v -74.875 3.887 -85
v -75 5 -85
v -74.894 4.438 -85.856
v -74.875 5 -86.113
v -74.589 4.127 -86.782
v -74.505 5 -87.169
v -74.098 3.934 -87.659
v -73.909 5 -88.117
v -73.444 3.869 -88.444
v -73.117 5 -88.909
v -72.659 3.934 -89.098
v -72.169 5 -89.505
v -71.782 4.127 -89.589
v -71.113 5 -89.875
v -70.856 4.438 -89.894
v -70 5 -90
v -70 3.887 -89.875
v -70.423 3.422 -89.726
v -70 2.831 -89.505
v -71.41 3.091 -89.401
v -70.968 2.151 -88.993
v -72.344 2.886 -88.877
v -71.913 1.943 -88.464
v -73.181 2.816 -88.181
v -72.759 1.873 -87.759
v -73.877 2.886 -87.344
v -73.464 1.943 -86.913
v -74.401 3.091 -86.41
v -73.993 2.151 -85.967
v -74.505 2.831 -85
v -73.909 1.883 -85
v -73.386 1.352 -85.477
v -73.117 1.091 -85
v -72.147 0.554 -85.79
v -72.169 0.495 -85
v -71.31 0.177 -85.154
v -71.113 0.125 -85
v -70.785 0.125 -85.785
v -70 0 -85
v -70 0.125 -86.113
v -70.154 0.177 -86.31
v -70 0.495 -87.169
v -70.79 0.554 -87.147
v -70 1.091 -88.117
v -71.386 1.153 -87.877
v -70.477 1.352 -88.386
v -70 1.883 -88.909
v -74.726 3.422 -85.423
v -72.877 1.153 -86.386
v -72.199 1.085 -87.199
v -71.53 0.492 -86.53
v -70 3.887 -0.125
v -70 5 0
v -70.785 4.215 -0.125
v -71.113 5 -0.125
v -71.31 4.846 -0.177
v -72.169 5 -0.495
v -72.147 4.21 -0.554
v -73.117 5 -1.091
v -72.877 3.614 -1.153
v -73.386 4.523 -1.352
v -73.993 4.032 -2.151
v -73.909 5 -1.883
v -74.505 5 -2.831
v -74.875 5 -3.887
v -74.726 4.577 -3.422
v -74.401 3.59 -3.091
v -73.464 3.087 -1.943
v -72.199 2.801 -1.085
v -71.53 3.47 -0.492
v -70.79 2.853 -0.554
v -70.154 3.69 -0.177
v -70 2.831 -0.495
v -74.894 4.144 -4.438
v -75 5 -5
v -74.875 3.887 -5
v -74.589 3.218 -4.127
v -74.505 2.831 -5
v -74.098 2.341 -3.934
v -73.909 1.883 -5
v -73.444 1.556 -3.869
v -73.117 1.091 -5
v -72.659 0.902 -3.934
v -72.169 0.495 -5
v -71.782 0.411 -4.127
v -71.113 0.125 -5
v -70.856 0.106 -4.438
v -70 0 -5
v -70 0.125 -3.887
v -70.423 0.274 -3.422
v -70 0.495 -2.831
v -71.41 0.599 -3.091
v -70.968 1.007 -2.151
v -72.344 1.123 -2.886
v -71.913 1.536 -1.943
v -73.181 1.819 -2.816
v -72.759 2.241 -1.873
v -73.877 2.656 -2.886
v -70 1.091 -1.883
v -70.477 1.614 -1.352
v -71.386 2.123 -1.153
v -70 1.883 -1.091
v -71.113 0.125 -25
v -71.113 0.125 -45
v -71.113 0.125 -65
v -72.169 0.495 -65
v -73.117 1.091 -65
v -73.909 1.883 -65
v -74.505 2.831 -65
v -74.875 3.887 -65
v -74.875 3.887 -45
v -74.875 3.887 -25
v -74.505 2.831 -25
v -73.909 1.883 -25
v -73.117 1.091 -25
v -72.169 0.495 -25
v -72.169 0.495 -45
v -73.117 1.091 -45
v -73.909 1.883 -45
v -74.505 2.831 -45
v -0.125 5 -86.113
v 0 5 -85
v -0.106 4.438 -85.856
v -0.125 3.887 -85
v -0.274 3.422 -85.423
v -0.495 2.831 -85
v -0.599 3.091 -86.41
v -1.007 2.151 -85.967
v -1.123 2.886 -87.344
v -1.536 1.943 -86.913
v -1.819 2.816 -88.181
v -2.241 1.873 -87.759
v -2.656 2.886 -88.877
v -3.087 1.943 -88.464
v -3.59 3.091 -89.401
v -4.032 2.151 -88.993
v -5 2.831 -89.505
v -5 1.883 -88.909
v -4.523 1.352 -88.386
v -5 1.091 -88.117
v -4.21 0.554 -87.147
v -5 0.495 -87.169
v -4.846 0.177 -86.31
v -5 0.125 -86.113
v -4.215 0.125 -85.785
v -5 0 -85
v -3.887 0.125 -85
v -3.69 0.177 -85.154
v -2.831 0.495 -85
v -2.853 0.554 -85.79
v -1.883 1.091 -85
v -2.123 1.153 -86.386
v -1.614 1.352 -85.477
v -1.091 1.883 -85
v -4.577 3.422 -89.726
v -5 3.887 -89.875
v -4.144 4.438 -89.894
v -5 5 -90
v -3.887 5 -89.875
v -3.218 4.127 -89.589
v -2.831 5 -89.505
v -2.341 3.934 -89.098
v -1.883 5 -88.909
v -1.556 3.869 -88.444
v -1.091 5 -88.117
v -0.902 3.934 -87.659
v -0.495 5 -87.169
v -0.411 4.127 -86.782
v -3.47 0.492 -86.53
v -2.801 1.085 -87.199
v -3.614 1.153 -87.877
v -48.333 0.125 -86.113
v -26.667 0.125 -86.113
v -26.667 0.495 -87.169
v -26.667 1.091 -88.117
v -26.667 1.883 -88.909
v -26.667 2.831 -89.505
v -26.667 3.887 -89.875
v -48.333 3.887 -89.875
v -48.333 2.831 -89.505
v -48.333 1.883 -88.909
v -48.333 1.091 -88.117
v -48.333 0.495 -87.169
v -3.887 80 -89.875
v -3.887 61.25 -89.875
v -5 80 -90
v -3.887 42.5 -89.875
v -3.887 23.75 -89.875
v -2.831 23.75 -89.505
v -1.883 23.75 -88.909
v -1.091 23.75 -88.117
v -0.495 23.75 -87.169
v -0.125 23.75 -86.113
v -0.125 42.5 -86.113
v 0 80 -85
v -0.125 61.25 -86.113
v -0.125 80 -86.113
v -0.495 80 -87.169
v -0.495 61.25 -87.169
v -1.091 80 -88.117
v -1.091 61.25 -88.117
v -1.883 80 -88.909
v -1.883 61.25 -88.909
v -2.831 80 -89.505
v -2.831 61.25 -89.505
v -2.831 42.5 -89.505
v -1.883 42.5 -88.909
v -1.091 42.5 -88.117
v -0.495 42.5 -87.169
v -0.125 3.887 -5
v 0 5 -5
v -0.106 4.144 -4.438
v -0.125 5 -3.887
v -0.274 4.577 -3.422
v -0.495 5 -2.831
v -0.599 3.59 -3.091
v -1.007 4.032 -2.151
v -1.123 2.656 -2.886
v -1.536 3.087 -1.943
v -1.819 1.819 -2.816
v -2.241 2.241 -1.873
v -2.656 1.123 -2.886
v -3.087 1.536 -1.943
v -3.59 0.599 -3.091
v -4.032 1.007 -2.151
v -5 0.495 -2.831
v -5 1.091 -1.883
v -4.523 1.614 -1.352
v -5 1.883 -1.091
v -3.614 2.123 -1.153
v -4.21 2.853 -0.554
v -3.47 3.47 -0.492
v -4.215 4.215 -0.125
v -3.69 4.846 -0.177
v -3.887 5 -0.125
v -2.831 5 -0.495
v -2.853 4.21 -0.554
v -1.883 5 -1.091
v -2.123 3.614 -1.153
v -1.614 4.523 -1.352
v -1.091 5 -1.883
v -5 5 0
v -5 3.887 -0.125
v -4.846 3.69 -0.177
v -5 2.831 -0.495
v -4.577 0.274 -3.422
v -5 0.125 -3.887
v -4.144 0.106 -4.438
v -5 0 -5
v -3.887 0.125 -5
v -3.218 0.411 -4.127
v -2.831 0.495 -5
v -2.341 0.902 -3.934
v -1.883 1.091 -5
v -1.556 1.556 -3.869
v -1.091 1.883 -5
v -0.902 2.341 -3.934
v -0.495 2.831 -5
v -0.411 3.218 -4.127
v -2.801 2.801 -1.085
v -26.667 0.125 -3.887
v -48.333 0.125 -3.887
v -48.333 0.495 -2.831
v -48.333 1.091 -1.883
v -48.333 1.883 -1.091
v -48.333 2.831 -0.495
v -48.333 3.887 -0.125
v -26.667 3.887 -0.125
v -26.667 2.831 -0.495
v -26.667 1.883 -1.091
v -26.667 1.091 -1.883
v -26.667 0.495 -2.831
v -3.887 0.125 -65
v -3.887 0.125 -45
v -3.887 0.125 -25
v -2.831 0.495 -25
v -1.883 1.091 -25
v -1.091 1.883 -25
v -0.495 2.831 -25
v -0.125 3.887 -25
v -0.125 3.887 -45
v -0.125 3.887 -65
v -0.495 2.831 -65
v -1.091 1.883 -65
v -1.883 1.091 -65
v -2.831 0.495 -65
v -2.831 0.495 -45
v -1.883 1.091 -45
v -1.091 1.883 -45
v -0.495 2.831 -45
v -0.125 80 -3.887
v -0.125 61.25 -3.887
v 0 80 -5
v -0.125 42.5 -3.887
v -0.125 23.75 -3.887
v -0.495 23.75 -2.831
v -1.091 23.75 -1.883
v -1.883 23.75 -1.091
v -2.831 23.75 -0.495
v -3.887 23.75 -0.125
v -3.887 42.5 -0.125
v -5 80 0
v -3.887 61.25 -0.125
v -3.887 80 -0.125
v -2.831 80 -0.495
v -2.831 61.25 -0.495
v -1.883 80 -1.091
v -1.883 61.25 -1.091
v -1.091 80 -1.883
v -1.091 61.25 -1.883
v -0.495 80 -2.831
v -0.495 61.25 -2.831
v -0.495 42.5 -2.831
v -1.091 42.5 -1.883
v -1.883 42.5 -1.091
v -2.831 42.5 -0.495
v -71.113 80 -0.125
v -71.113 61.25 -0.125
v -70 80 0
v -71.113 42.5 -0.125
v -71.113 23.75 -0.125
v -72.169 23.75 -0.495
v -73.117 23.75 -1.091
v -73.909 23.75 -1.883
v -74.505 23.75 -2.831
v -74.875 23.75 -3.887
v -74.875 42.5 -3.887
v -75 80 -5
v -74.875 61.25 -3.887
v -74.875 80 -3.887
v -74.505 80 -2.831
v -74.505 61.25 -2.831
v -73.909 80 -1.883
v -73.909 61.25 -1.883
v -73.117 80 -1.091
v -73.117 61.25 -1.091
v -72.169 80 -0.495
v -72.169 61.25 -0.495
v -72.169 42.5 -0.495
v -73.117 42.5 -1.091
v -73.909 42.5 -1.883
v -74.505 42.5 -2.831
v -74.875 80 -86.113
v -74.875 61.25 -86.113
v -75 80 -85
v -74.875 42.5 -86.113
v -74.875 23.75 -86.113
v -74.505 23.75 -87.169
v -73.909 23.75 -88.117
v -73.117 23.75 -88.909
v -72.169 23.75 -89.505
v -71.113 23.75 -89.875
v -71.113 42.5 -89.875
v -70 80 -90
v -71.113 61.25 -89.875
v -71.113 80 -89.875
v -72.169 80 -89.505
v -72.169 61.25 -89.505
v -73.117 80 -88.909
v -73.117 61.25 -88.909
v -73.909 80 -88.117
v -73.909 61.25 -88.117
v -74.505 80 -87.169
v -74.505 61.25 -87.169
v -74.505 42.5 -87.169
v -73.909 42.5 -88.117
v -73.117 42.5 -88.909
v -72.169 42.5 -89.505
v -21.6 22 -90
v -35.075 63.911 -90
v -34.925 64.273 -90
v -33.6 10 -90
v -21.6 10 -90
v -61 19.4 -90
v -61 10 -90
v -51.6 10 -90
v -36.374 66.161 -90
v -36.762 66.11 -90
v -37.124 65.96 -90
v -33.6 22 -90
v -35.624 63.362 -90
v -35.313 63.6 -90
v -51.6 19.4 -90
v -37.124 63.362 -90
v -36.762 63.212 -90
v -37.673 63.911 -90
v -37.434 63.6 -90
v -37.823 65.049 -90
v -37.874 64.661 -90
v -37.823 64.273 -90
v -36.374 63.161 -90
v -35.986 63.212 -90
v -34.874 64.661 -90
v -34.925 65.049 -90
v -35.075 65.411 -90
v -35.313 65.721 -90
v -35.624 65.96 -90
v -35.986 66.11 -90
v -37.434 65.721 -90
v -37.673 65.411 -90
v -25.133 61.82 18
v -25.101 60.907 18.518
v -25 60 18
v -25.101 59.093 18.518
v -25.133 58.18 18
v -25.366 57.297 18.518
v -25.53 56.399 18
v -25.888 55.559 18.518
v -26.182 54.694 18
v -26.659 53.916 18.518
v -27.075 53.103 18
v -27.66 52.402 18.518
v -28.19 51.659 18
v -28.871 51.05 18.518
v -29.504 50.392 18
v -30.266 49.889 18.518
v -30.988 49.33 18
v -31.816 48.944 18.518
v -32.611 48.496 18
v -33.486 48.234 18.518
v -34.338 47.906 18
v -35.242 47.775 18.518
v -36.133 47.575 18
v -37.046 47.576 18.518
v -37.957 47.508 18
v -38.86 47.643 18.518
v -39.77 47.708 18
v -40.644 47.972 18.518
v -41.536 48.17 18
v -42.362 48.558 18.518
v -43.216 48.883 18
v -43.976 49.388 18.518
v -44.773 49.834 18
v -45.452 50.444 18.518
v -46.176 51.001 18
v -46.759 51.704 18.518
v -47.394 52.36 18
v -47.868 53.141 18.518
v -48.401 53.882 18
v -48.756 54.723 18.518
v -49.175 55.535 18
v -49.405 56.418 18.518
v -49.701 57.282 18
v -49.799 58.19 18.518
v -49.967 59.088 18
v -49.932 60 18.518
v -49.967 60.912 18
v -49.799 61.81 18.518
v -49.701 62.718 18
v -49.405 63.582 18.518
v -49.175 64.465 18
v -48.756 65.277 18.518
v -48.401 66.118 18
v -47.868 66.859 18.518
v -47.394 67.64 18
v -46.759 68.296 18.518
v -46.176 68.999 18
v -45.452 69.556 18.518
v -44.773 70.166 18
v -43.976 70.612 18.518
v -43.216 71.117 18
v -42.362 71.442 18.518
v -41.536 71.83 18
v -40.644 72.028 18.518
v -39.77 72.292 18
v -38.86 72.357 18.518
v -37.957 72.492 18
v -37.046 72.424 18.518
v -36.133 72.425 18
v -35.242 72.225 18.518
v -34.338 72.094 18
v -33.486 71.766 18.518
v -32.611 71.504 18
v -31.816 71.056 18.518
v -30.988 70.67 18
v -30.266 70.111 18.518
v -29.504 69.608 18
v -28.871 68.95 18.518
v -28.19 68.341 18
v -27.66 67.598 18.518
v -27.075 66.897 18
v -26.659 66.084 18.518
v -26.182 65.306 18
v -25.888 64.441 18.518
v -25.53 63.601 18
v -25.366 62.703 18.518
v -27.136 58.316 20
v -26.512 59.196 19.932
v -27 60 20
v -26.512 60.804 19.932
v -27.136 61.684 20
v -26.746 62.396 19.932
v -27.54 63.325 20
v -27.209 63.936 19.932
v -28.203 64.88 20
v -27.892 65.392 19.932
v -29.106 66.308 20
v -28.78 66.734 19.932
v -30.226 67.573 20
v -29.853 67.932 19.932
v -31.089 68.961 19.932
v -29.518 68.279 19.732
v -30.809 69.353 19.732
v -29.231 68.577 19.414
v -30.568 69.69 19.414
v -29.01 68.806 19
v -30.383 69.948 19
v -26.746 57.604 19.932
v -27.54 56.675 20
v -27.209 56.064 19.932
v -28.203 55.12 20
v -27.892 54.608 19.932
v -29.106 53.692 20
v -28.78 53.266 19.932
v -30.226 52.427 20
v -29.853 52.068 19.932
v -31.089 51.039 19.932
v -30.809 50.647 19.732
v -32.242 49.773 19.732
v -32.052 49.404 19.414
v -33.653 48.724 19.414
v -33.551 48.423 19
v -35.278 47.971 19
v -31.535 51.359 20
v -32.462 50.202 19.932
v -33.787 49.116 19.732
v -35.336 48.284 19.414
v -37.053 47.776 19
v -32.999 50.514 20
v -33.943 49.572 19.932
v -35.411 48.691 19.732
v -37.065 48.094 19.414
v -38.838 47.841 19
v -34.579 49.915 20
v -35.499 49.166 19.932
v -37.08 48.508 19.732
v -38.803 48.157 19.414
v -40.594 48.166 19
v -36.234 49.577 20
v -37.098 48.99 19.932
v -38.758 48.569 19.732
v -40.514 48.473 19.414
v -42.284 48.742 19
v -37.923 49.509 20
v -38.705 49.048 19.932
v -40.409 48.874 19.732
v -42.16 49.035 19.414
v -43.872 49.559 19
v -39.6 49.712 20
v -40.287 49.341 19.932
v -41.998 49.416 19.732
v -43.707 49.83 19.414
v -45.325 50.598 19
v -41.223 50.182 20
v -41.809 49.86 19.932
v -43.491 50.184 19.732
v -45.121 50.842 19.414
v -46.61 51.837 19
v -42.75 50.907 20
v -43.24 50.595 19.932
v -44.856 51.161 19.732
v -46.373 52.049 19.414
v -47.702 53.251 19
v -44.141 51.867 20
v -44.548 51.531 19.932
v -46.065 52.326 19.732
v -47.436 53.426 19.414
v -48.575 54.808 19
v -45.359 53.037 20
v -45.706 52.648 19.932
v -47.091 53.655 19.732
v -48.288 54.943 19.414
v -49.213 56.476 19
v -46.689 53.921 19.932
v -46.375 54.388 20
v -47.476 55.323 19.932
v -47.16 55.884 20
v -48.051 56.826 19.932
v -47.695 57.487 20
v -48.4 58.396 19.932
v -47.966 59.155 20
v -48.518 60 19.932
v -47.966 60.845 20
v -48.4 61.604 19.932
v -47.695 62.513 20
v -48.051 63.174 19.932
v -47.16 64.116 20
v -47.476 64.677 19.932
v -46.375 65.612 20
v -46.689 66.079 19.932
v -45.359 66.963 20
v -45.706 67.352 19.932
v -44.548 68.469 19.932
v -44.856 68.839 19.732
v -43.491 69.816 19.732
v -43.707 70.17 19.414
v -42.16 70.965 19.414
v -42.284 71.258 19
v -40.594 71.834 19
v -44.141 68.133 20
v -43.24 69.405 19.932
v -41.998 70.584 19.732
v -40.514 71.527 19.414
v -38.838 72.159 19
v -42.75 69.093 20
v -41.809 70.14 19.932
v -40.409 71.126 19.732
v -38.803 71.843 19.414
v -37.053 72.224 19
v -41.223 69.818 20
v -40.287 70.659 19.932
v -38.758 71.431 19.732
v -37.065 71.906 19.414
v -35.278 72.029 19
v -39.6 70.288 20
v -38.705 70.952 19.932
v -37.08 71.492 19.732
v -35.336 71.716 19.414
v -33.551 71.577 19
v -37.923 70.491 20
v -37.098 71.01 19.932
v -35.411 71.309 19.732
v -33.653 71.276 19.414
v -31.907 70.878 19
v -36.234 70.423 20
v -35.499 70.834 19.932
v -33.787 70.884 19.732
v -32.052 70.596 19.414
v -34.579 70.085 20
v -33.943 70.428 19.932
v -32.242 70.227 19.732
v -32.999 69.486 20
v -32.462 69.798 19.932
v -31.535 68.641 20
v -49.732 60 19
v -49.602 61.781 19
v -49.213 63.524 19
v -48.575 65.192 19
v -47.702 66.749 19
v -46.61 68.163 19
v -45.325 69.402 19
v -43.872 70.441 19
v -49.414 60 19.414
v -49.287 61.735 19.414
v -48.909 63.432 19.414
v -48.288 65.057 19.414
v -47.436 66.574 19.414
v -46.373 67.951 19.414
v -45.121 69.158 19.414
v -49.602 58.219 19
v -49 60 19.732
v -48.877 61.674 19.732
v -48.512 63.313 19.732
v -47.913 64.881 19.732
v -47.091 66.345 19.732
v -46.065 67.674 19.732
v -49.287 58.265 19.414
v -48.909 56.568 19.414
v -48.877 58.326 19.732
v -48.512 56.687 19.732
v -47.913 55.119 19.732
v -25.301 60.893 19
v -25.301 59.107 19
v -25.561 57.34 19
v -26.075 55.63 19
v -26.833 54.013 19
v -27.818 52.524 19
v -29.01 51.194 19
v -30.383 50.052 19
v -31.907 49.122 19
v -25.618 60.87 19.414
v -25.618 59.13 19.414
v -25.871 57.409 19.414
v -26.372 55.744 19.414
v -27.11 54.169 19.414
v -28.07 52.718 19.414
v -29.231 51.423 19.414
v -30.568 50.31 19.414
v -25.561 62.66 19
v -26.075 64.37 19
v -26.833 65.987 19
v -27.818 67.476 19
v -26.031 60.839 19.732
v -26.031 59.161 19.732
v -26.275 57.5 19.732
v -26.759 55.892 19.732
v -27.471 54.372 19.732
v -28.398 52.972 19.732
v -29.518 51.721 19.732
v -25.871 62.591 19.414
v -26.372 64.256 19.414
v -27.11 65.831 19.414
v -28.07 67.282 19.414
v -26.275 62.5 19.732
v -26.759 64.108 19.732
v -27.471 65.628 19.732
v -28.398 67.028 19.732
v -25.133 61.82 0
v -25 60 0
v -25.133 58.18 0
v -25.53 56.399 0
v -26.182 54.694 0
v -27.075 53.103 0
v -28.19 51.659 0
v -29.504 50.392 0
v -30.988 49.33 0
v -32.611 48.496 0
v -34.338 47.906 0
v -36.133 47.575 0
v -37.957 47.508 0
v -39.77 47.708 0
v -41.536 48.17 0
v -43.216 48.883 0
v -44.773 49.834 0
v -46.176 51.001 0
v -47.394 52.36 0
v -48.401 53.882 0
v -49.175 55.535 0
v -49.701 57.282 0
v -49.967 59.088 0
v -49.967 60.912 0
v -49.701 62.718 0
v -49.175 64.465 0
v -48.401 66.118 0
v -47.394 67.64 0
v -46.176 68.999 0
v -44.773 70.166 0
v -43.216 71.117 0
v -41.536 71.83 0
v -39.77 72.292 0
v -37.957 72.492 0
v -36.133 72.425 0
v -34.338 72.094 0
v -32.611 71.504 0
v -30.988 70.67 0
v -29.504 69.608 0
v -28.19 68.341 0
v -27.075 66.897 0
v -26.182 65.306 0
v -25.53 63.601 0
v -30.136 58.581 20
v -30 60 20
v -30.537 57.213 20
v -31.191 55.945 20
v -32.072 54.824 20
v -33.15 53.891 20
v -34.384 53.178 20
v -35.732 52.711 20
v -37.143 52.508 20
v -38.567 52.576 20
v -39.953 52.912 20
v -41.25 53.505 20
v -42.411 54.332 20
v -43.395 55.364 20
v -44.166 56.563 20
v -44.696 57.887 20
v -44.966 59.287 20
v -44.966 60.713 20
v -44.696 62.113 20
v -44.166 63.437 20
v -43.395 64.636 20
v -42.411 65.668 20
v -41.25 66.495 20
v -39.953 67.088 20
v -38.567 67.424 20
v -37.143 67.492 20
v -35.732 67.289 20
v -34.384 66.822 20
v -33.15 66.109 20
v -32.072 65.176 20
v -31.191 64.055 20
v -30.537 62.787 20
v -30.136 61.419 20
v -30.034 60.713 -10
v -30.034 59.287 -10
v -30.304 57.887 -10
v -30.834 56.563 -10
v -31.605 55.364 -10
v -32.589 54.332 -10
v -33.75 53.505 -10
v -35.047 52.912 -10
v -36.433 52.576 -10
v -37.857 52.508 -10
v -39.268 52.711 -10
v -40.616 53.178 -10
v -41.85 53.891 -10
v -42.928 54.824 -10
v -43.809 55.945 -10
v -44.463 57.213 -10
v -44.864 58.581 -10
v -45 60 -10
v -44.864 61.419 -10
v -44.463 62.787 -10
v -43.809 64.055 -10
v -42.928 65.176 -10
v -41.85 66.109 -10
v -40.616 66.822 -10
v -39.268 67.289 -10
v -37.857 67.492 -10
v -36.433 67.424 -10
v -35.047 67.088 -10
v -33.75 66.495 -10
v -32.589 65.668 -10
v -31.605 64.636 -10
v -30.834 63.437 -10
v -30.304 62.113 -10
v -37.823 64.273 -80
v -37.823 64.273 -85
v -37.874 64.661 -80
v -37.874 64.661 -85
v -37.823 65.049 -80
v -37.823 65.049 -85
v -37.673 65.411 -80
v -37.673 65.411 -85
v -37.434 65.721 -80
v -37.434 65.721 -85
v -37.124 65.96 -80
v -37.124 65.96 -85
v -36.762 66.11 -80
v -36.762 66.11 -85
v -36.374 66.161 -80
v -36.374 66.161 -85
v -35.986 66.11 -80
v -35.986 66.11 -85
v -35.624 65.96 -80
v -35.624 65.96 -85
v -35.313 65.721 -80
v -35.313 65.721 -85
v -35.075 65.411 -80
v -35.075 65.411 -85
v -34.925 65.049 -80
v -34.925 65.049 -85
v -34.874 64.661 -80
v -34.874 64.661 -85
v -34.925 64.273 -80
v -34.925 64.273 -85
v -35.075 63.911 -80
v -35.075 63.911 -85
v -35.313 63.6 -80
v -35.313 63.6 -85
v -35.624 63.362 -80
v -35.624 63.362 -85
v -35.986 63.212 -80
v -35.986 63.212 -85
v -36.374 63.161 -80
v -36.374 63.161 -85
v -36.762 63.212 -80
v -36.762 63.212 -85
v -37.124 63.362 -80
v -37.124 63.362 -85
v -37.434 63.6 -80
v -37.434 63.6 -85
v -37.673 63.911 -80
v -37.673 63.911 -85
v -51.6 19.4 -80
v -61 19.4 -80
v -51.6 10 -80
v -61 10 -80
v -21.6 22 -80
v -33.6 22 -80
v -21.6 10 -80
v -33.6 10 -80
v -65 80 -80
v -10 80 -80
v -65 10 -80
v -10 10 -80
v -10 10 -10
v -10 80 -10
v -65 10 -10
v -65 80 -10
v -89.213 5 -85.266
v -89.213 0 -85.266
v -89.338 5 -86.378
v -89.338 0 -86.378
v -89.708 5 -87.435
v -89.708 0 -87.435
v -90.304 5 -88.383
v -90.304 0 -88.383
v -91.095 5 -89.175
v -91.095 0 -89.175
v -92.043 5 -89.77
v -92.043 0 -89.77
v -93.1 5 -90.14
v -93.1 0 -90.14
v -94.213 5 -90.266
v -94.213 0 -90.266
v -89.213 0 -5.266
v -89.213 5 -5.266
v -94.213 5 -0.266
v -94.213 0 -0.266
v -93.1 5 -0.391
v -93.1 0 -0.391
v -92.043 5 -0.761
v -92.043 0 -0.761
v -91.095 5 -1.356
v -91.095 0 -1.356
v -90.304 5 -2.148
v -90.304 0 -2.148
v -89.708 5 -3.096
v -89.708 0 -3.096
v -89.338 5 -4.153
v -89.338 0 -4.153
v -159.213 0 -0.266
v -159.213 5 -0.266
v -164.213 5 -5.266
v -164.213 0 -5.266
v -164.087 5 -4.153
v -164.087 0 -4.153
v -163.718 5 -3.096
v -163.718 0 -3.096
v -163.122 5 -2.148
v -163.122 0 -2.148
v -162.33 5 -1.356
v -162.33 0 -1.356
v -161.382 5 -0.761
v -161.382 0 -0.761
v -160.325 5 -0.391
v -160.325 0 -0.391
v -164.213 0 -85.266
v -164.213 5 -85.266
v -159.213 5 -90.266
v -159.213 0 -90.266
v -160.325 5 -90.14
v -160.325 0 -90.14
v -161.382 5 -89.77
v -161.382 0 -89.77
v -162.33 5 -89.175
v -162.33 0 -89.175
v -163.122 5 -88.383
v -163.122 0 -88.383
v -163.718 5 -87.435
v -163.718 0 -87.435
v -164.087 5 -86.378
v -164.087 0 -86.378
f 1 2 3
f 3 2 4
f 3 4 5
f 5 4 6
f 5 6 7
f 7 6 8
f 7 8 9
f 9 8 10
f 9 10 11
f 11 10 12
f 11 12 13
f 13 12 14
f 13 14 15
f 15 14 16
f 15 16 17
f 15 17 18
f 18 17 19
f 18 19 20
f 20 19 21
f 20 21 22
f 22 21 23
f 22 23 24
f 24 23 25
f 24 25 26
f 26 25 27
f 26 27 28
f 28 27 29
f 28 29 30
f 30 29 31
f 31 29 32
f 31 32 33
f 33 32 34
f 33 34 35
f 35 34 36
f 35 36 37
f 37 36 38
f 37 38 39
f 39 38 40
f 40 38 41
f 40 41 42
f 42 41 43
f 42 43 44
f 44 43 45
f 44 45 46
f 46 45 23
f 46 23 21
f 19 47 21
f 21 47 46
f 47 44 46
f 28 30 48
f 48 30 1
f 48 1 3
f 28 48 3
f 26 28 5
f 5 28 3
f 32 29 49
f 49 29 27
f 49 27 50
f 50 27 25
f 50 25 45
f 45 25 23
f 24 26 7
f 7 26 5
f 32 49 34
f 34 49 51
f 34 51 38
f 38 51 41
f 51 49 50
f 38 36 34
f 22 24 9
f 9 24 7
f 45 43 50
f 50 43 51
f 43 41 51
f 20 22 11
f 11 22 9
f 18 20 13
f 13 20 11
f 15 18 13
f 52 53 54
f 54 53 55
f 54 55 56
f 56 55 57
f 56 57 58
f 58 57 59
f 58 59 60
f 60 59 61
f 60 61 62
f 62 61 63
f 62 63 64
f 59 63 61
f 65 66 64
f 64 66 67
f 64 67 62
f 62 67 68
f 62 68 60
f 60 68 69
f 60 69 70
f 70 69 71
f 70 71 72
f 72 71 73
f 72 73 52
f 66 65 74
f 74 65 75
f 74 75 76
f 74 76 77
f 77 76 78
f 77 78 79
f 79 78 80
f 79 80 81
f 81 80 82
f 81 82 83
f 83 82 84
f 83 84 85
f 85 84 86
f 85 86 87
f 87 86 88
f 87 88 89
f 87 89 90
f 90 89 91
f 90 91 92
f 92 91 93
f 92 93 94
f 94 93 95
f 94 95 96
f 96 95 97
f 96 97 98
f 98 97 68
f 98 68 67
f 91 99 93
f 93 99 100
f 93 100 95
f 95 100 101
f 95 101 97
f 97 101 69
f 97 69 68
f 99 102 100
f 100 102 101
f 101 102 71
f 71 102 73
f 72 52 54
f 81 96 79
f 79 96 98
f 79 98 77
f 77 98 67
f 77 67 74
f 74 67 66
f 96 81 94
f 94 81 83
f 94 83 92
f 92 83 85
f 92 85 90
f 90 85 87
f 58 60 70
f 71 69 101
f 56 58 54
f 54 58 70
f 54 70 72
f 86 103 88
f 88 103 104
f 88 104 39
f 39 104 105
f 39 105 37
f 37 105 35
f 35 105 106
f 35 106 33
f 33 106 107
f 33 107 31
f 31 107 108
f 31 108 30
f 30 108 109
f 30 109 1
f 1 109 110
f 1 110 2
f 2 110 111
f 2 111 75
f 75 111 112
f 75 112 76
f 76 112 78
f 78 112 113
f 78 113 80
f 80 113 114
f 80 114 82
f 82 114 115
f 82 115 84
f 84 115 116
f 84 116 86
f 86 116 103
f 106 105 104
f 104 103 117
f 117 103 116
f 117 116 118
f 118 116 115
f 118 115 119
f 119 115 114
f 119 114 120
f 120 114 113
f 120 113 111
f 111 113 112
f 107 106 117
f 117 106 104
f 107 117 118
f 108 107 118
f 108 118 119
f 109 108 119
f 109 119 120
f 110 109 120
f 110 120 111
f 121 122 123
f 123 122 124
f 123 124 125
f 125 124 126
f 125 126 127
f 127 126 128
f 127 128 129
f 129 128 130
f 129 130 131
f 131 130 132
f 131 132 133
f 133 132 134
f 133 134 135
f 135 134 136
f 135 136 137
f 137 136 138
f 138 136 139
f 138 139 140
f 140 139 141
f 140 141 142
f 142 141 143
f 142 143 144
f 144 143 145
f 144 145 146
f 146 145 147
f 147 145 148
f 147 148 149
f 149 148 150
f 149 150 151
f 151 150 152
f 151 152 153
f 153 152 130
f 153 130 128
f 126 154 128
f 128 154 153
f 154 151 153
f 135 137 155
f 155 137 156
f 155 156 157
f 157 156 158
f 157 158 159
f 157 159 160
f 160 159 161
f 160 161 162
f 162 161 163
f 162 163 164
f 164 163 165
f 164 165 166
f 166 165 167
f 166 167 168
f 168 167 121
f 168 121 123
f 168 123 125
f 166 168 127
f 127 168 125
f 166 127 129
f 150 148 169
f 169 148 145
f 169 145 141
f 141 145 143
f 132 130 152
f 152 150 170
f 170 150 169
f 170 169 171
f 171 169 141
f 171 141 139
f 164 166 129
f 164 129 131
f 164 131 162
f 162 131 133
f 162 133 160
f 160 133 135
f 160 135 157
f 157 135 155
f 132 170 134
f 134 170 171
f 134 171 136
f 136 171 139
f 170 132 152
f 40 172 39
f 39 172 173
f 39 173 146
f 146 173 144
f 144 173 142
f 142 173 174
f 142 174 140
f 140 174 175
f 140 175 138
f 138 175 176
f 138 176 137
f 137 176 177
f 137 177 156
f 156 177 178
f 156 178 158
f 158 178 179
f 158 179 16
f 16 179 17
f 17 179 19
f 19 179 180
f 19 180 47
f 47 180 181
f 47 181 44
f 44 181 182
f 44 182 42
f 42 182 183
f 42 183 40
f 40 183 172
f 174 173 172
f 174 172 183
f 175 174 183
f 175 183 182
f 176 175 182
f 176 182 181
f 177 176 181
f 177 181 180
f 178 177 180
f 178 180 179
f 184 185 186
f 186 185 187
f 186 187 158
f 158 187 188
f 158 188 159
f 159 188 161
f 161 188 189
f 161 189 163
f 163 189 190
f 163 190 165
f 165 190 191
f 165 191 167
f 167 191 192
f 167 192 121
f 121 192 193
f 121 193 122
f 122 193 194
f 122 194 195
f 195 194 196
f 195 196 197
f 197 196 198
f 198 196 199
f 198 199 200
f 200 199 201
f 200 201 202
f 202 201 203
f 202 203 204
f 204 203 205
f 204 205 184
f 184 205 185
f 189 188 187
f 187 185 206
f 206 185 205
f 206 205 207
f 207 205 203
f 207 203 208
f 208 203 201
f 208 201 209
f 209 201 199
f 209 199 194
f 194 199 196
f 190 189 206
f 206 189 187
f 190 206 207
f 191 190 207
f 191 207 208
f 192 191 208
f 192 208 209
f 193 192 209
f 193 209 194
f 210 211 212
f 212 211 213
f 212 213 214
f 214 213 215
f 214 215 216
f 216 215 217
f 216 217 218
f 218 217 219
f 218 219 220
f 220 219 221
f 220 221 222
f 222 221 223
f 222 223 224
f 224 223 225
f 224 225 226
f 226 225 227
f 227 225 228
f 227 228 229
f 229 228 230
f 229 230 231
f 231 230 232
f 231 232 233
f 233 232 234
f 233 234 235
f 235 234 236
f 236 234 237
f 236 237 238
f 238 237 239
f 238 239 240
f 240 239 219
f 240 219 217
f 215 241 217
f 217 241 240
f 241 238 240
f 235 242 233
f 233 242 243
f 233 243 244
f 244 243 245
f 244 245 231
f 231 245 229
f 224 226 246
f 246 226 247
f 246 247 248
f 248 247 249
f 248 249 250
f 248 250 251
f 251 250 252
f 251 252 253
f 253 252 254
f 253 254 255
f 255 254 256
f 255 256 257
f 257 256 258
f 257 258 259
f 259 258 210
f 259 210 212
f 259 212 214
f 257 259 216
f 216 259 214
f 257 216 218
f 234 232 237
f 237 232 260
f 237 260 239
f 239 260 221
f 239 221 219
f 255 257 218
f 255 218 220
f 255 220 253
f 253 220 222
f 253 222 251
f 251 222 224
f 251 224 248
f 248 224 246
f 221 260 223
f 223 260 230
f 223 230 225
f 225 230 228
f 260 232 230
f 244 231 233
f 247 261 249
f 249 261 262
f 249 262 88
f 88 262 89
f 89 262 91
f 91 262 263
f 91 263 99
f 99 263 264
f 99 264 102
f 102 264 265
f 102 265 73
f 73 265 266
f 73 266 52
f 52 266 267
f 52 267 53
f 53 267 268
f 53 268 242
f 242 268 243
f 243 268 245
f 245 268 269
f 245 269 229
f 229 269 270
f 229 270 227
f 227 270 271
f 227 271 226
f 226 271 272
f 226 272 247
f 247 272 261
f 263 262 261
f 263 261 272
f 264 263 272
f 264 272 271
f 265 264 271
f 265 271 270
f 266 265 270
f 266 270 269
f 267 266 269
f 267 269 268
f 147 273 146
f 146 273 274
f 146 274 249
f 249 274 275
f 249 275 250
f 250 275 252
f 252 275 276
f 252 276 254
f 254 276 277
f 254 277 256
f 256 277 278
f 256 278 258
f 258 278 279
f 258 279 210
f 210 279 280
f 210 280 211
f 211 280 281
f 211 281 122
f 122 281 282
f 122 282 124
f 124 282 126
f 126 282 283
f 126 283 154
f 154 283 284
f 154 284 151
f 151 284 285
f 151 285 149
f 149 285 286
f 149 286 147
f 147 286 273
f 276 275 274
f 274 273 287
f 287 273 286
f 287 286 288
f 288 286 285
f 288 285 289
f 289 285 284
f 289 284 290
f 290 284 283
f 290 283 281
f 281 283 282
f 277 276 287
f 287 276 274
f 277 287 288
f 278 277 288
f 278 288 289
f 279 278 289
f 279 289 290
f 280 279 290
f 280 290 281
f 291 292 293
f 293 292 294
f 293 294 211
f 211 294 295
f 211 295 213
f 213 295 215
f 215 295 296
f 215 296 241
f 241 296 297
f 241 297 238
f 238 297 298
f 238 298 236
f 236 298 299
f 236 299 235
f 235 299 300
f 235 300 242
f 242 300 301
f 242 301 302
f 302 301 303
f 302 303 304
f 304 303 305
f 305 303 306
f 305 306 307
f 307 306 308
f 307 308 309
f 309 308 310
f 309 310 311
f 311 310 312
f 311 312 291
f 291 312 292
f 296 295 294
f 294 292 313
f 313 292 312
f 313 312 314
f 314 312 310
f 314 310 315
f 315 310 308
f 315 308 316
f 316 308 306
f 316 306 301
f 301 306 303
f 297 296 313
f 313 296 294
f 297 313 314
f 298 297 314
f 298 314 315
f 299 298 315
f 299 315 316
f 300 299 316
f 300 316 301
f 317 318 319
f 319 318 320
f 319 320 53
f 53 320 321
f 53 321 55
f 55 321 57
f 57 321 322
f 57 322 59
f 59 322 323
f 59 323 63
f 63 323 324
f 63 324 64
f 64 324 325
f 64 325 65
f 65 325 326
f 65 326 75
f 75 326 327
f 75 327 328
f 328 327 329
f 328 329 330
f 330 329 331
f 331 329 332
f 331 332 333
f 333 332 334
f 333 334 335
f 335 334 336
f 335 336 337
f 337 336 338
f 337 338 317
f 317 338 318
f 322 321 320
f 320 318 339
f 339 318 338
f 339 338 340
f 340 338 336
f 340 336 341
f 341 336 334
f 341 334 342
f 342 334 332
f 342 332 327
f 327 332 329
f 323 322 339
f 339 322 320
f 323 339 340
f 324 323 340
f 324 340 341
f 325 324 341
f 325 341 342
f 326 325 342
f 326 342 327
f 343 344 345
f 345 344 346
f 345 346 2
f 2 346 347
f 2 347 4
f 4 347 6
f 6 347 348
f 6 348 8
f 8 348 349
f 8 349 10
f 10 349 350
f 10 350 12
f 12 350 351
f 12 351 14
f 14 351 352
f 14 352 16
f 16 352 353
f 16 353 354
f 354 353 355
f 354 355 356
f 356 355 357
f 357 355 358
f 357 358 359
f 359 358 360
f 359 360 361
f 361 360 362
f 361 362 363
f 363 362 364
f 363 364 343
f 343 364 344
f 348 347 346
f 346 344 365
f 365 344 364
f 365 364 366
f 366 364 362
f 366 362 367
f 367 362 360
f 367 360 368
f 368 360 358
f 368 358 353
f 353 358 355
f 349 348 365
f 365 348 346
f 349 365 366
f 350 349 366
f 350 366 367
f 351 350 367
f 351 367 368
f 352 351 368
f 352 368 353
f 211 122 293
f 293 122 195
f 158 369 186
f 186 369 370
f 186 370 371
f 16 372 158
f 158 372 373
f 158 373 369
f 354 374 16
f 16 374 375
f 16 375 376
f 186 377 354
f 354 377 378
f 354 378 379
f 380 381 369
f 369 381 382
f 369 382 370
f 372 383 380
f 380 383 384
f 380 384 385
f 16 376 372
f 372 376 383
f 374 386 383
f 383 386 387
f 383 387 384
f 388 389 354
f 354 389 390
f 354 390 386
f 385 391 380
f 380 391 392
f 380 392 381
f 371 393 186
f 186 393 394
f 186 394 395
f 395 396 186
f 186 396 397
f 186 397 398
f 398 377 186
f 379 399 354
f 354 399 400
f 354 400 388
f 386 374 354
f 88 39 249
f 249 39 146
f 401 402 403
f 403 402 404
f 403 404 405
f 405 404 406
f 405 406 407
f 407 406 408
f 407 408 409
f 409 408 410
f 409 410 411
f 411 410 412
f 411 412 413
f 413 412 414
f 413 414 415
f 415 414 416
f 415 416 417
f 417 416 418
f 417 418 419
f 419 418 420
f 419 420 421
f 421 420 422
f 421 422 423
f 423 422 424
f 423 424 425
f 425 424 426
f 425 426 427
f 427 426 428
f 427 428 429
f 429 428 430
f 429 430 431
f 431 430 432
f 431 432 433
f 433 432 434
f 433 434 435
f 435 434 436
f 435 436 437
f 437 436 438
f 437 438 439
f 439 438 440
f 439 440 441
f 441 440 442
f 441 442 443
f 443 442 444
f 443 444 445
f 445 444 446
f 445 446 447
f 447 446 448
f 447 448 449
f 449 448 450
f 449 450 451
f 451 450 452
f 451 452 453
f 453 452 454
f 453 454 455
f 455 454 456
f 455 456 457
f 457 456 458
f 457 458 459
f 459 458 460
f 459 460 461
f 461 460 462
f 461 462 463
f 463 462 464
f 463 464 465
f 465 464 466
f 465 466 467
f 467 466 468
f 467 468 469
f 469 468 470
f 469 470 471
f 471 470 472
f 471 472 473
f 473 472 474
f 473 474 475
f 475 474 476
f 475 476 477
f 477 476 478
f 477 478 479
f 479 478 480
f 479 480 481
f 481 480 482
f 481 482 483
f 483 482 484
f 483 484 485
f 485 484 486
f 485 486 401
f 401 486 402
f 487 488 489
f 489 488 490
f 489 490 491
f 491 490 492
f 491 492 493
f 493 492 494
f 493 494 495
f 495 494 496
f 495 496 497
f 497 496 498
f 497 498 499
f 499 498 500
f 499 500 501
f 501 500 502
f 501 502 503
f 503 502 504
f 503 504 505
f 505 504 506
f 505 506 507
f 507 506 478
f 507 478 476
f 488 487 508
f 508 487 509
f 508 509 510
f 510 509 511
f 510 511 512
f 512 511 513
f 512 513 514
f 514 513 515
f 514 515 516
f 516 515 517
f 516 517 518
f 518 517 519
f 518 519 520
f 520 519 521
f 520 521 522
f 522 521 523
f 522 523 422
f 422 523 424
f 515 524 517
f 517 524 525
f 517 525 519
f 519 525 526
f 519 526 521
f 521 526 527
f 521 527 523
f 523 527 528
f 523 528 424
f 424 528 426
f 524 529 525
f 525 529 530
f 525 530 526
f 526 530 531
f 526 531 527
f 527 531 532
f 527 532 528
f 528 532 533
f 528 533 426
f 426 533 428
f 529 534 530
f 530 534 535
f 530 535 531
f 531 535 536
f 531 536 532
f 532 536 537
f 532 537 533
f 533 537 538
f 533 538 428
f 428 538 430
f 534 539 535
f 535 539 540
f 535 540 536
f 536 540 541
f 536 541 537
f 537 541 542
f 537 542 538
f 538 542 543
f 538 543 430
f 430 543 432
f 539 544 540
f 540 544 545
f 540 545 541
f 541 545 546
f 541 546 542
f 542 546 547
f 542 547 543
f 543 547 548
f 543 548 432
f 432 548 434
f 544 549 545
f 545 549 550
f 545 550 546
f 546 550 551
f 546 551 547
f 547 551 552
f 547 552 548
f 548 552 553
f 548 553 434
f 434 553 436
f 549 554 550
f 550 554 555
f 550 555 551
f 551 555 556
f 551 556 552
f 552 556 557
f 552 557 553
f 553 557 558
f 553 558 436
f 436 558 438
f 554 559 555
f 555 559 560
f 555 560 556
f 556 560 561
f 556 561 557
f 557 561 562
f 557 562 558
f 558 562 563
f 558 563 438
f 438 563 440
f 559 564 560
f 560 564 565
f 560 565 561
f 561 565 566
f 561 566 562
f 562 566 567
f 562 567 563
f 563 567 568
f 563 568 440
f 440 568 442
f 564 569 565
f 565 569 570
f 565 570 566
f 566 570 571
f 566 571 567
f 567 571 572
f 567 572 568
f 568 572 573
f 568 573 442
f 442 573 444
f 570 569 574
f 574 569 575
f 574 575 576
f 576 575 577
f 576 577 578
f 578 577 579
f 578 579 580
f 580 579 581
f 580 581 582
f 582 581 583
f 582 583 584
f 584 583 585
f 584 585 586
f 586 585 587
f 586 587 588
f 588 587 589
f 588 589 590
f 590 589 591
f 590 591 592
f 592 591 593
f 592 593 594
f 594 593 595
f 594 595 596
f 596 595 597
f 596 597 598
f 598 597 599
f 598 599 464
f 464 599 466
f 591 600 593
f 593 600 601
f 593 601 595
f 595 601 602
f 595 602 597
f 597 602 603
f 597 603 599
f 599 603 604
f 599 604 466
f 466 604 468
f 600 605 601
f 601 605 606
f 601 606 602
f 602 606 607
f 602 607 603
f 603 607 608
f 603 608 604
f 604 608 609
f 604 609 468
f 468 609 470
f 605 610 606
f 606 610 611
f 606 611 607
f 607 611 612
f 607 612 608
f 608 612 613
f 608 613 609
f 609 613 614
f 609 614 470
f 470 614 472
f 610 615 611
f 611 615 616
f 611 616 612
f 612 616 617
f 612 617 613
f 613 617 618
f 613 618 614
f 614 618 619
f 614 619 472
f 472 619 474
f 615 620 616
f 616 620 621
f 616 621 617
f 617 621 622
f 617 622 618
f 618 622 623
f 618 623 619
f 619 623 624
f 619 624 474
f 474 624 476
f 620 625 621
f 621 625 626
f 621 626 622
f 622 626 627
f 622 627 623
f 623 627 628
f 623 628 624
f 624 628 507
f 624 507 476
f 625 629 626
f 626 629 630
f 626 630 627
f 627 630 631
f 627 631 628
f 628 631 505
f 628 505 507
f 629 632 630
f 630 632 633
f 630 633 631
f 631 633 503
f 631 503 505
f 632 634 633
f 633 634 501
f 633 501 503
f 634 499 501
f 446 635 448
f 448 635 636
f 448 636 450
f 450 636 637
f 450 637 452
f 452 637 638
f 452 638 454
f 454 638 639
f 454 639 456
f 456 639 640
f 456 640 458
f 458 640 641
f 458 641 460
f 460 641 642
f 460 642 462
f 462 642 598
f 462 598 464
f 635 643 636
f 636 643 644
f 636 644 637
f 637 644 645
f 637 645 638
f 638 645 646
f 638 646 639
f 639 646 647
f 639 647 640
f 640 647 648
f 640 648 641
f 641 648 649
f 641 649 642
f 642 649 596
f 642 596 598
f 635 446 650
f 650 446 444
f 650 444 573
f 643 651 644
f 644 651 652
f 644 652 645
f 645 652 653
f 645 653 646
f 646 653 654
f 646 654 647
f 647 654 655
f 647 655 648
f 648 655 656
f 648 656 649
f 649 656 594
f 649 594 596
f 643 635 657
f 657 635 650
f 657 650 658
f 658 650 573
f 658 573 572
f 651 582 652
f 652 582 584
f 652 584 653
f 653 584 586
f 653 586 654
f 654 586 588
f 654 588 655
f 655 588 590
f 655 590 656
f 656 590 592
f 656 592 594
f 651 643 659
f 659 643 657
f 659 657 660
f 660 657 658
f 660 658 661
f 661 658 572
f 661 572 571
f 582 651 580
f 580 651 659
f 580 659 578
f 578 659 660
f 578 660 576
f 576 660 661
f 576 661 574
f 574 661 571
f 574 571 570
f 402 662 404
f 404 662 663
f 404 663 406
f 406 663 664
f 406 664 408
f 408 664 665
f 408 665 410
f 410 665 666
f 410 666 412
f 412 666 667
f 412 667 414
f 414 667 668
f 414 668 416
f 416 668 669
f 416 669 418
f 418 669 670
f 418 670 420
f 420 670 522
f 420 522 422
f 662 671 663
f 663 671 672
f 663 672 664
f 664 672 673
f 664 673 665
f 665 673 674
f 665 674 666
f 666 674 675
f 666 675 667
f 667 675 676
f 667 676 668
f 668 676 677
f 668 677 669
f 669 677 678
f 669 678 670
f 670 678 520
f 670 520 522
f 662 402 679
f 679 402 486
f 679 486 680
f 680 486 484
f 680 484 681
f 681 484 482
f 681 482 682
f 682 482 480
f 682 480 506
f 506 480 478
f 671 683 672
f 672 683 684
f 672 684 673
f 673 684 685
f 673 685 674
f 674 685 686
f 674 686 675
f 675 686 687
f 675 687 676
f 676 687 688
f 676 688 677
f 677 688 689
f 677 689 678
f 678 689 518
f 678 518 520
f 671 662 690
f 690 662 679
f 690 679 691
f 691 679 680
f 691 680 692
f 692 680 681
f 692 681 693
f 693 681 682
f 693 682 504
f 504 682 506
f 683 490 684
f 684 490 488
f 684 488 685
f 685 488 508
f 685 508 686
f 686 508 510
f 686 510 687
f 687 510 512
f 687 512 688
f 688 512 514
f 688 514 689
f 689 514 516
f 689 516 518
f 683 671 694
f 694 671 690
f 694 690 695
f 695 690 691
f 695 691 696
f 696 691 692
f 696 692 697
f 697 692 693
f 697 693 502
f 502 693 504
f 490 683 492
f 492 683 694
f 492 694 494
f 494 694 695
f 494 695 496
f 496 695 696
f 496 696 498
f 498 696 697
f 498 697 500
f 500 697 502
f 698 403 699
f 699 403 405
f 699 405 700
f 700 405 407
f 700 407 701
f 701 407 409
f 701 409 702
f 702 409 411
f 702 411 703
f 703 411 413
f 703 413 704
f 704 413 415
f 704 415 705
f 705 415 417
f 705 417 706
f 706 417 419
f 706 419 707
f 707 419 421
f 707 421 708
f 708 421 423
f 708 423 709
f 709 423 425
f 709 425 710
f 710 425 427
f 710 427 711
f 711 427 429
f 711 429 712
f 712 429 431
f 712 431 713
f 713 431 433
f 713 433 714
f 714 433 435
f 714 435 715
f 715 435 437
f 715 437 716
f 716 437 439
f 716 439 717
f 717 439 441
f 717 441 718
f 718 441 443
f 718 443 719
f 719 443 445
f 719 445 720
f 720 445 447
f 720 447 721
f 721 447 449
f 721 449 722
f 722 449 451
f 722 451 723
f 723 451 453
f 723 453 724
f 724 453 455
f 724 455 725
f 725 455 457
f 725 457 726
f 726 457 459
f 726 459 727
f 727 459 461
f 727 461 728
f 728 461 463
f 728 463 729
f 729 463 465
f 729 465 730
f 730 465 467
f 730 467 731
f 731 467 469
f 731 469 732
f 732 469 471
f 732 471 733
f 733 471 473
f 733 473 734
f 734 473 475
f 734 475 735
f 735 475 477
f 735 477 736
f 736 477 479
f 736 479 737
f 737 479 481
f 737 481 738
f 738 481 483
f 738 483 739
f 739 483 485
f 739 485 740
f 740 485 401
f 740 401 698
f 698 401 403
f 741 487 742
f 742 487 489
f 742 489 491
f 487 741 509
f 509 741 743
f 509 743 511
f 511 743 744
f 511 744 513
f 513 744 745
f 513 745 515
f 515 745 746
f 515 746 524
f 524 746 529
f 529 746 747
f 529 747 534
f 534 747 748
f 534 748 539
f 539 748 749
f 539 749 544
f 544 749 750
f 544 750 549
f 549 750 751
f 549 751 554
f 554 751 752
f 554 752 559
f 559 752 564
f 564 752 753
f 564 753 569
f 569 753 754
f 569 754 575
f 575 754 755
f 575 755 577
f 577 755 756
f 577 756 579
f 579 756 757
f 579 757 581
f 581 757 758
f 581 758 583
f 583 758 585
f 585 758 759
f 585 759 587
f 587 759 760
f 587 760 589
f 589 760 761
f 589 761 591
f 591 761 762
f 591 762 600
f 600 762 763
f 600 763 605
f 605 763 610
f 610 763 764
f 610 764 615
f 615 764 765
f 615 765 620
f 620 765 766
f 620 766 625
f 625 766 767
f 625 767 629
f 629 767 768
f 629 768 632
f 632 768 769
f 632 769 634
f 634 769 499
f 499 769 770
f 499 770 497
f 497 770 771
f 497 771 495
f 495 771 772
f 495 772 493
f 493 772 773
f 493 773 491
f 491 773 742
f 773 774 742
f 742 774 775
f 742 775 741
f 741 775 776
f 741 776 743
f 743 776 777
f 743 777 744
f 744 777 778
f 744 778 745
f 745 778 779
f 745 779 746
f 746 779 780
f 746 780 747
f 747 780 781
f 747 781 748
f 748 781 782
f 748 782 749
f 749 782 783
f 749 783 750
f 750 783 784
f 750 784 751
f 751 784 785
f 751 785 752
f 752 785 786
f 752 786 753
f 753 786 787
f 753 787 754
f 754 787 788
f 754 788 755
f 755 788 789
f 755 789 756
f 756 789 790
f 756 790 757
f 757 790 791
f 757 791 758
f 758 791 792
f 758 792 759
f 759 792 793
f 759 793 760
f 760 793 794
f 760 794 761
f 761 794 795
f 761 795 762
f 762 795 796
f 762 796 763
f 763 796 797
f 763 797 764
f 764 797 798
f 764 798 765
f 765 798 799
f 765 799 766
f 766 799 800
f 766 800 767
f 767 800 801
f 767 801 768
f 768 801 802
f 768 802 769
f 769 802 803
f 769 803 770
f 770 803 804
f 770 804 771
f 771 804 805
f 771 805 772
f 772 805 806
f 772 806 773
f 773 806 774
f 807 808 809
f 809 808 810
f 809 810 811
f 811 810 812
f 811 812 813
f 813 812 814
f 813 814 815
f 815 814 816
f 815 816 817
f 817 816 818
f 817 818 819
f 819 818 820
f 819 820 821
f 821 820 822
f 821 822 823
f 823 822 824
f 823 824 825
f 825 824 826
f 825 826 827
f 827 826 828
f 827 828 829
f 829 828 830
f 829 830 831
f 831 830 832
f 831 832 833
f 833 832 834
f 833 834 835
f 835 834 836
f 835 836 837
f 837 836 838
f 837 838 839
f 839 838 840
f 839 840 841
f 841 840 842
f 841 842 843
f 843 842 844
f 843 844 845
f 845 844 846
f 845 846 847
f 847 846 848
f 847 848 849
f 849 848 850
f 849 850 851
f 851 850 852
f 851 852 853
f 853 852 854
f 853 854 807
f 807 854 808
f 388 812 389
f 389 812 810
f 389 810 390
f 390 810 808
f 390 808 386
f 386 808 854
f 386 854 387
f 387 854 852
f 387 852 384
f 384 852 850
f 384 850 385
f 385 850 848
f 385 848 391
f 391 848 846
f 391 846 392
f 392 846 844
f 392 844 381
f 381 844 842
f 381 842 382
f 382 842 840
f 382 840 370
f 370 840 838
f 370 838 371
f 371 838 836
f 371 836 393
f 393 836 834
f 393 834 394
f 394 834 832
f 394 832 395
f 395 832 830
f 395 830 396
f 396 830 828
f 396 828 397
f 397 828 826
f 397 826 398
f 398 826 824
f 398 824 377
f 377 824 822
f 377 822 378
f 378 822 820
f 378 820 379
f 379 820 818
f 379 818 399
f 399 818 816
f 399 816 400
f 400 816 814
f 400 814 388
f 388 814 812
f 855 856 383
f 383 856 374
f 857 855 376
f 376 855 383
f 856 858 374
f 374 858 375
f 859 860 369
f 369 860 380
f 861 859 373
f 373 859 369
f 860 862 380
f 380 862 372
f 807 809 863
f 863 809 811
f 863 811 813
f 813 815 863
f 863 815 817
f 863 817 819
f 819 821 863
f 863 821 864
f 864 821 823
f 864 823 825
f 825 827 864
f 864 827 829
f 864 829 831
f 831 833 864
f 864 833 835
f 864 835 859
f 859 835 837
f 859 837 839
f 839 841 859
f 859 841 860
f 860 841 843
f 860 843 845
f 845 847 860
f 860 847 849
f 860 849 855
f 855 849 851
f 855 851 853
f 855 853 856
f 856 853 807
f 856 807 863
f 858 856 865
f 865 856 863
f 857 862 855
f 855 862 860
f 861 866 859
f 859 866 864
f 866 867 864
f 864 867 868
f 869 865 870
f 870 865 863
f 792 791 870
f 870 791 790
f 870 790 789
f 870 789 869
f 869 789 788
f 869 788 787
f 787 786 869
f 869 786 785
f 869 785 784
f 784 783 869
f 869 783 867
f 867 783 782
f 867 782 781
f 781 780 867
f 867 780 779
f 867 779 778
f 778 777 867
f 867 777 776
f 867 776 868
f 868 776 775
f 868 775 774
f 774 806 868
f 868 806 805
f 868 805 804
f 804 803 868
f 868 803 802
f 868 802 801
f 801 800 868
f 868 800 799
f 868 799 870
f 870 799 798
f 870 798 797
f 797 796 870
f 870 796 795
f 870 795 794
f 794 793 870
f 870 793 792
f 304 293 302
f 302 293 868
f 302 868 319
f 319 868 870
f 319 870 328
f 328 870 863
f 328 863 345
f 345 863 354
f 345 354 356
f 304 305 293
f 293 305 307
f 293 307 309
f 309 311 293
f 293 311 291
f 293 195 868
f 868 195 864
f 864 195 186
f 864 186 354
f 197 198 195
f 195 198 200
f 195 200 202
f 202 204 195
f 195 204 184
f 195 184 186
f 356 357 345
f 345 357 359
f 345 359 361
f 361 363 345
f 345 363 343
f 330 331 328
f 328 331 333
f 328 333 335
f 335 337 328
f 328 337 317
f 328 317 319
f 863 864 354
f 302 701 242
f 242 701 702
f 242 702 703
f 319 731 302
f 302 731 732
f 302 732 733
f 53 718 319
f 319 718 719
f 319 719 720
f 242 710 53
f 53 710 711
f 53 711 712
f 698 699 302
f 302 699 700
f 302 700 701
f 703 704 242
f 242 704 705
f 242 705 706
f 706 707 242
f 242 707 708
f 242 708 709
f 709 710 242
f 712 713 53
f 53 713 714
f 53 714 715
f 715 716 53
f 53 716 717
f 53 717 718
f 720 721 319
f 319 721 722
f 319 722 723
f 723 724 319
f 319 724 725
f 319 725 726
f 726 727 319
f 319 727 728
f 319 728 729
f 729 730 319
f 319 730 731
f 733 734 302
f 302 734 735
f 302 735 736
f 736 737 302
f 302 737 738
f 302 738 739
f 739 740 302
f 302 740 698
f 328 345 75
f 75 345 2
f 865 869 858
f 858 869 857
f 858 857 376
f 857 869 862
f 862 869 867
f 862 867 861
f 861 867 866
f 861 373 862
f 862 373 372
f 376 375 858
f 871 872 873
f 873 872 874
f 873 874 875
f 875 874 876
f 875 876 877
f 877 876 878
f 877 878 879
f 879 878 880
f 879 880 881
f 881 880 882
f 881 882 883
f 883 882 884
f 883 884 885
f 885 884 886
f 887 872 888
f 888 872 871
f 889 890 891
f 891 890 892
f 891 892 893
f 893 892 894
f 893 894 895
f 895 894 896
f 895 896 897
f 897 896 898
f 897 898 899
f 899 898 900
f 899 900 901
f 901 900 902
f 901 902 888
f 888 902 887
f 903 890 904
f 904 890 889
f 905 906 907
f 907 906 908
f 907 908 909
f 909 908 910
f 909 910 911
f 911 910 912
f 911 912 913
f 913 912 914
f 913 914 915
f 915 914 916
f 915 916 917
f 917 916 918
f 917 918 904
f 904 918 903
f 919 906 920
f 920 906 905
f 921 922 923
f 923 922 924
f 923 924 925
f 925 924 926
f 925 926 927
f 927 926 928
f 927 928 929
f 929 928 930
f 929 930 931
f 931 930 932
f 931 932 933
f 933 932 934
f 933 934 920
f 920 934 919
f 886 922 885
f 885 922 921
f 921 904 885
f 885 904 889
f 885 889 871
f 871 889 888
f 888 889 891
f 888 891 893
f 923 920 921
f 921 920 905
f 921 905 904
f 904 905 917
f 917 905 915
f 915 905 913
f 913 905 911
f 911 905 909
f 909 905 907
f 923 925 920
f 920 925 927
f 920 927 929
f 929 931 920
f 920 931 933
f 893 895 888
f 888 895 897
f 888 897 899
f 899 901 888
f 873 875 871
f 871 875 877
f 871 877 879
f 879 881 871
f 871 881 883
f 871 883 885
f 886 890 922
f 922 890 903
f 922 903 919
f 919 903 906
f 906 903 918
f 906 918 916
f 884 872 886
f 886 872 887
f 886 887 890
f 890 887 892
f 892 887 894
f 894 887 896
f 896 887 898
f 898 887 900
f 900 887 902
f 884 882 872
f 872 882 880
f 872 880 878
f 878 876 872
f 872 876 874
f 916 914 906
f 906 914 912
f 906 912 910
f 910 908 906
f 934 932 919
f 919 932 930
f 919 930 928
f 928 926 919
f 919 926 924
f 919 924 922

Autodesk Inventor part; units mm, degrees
ref_plane "YZ Plane" through (0, 0, 0) normal (1, 0, 0) x (0, 1, 0)
ref_plane "XZ Plane" through (0, 0, 0) normal (0, 1, 0) x (-1, 0, 0)
ref_plane "XY Plane" through (0, 0, 0) normal (0, 0, 1) x (1, 0, 0)
sketch "Boceto1" plane through (0, 0, 0) normal (0, 1, 0) x (-1, 0, 0)
  line L0 (0, 0) -> (75, 0)
  line L1 (75, 0) -> (75, -90)
  line L2 (75, -90) -> (0, -90)
  line L3 (0, -90) -> (0, 0)
  dimension "d0" = 75
  dimension "d1" = 90
extrude "Extrusión1" add sketch "Boceto1" along normal blind 10
sketch "Boceto2" plane through (0, 10, 0) normal (0, 1, 0) x (1, 0, 0)
  line L0 (-10, 10) -> (-65, 10)
  line L1 (-65, 10) -> (-65, 80)
  line L2 (-65, 80) -> (-10, 80)
  line L3 (-10, 80) -> (-10, 10)
  line L4 (-75, 0) -> (0, 0) projected
  line L5 (0, 90) -> (-75, 90) projected
  line L6 (0, 0) -> (0, 90) projected
  line L7 (-75, 90) -> (-75, 0) projected
  line L8 (0, 0) -> (-75, 0)
  line L9 (-75, 0) -> (-75, 90)
  line L10 (-75, 90) -> (0, 90)
  line L11 (0, 90) -> (0, 0)
  dimension "d4" = 10
  dimension "d5" = 10
  dimension "d6" = 10
  dimension "d7" = 10
extrude "Extrusión2" add sketch "Boceto2" along normal blind 70
sketch "Boceto3" plane through (0, 0, -90) normal (0, 0, -1) x (-1, 0, 0)
  line L0 (0, 0) -> (0, 80) projected
  line L1 (0, 10) -> (80.4696, 10)
  line L2 (0, 0) -> (75, 0) projected
  line L3 (65, 10) -> (65, 80) projected
  line L4 (65, 80) -> (65, 10)
  line L5 (10, 10) -> (10, 80) projected
  line L6 (10, 80) -> (10, 10)
  line L7 (21.6, 10) -> (33.6, 10)
  line L8 (33.6, 10) -> (33.6, 22)
  line L9 (33.6, 22) -> (21.6, 22)
  line L10 (21.6, 22) -> (21.6, 10)
  line L11 (51.6, 10) -> (61, 10)
  line L12 (61, 10) -> (61, 19.4)
  line L13 (61, 19.4) -> (51.6, 19.4)
  line L14 (51.6, 19.4) -> (51.6, 10)
  dimension "d10" = 10
  dimension "d11" = 12
  dimension "d12" = 9.4
  dimension "d13" = 18
  dimension "d14" = 4
extrude "Extrusión3" cut sketch "Boceto3" against normal blind 70
sketch "Boceto4" plane through (-75, 0, 0) normal (0, 0, 1) x (1, 0, 0)
  point P0 (75, 0)
  point P1 (38.6263, 64.6608)
hole "Agujero1" at (-36.3737, 64.6608, 0) direction (0, 0, -1) diameter 3 end through all
sketch "Boceto5" plane through (-75, 0, 0) normal (0, 0, 1) x (1, 0, 0)
  circle A0 centre (37.5, 60) radius 7.5
  line L0 (0, 80) -> (75, 80) projected
  point P0 (75, 0)
  point P1 (37.5, 80)
  dimension "d24" = 20
  dimension "d25" = 15
extrude "Extrusión4" cut sketch "Boceto5" against normal blind 15
sketch "Boceto6" plane through (-75, 0, 0) normal (0, 0, 1) x (1, 0, 0)
  circle A0 centre (37.5, 60) radius 7.5 projected
  circle A1 centre (37.5, 60) radius 12.5
  circle A2 centre (37.5, 60) radius 7.5
  point P0 (75, 0)
  dimension "d28" = 5
extrude "Extrusión5" add sketch "Boceto6" along normal blind 20
fillet "Empalme1" radius 2 1 edges at (-50, 60, 20)
fillet "Empalme2" radius 5 8 edges at (0, 0, -45) (0, 40, 0) (-75, 40, 0) (-37.5, 0, 0) (0, 40, -90) (-75, 40, -90) (-37.5, 0, -90) (-75, 0, -45)
sketch "Boceto7" plane through (0, 0, 0) normal (0, 1, 0) x (-1, 0, 0)
  line L0 (94.2127, -0.2655) -> (159.2127, -0.2655)
  line L1 (164.2127, -5.2655) -> (164.2127, -85.2655)
  line L2 (159.2127, -90.2655) -> (94.2127, -90.2655)
  line L3 (89.2127, -85.2655) -> (89.2127, -5.2655)
  line L4 (0, -5) -> (0, -85) projected
  line L5 (75, -85) -> (75, -5) projected
  arc A0 (94.2127, -0.2655) -> (89.2127, -5.2655) centre (94.2127, -5.2655) ccw
  arc A1 (164.2127, -5.2655) -> (159.2127, -0.2655) centre (159.2127, -5.2655) ccw
  arc A2 (159.2127, -90.2655) -> (164.2127, -85.2655) centre (159.2127, -85.2655) ccw
  arc A3 (89.2127, -85.2655) -> (94.2127, -90.2655) centre (94.2127, -85.2655) ccw
  point P0 (0, 0)
  point P1 (89.2127, -45.2655)
  dimension "d33" = 75
  dimension "d34" = 75
  dimension "d35" = 90
  dimension "d36" = 5
extrude "Extrusión6" add sketch "Boceto7" along normal blind 5
properties part number "Alcoholimetro_3DPrint"
